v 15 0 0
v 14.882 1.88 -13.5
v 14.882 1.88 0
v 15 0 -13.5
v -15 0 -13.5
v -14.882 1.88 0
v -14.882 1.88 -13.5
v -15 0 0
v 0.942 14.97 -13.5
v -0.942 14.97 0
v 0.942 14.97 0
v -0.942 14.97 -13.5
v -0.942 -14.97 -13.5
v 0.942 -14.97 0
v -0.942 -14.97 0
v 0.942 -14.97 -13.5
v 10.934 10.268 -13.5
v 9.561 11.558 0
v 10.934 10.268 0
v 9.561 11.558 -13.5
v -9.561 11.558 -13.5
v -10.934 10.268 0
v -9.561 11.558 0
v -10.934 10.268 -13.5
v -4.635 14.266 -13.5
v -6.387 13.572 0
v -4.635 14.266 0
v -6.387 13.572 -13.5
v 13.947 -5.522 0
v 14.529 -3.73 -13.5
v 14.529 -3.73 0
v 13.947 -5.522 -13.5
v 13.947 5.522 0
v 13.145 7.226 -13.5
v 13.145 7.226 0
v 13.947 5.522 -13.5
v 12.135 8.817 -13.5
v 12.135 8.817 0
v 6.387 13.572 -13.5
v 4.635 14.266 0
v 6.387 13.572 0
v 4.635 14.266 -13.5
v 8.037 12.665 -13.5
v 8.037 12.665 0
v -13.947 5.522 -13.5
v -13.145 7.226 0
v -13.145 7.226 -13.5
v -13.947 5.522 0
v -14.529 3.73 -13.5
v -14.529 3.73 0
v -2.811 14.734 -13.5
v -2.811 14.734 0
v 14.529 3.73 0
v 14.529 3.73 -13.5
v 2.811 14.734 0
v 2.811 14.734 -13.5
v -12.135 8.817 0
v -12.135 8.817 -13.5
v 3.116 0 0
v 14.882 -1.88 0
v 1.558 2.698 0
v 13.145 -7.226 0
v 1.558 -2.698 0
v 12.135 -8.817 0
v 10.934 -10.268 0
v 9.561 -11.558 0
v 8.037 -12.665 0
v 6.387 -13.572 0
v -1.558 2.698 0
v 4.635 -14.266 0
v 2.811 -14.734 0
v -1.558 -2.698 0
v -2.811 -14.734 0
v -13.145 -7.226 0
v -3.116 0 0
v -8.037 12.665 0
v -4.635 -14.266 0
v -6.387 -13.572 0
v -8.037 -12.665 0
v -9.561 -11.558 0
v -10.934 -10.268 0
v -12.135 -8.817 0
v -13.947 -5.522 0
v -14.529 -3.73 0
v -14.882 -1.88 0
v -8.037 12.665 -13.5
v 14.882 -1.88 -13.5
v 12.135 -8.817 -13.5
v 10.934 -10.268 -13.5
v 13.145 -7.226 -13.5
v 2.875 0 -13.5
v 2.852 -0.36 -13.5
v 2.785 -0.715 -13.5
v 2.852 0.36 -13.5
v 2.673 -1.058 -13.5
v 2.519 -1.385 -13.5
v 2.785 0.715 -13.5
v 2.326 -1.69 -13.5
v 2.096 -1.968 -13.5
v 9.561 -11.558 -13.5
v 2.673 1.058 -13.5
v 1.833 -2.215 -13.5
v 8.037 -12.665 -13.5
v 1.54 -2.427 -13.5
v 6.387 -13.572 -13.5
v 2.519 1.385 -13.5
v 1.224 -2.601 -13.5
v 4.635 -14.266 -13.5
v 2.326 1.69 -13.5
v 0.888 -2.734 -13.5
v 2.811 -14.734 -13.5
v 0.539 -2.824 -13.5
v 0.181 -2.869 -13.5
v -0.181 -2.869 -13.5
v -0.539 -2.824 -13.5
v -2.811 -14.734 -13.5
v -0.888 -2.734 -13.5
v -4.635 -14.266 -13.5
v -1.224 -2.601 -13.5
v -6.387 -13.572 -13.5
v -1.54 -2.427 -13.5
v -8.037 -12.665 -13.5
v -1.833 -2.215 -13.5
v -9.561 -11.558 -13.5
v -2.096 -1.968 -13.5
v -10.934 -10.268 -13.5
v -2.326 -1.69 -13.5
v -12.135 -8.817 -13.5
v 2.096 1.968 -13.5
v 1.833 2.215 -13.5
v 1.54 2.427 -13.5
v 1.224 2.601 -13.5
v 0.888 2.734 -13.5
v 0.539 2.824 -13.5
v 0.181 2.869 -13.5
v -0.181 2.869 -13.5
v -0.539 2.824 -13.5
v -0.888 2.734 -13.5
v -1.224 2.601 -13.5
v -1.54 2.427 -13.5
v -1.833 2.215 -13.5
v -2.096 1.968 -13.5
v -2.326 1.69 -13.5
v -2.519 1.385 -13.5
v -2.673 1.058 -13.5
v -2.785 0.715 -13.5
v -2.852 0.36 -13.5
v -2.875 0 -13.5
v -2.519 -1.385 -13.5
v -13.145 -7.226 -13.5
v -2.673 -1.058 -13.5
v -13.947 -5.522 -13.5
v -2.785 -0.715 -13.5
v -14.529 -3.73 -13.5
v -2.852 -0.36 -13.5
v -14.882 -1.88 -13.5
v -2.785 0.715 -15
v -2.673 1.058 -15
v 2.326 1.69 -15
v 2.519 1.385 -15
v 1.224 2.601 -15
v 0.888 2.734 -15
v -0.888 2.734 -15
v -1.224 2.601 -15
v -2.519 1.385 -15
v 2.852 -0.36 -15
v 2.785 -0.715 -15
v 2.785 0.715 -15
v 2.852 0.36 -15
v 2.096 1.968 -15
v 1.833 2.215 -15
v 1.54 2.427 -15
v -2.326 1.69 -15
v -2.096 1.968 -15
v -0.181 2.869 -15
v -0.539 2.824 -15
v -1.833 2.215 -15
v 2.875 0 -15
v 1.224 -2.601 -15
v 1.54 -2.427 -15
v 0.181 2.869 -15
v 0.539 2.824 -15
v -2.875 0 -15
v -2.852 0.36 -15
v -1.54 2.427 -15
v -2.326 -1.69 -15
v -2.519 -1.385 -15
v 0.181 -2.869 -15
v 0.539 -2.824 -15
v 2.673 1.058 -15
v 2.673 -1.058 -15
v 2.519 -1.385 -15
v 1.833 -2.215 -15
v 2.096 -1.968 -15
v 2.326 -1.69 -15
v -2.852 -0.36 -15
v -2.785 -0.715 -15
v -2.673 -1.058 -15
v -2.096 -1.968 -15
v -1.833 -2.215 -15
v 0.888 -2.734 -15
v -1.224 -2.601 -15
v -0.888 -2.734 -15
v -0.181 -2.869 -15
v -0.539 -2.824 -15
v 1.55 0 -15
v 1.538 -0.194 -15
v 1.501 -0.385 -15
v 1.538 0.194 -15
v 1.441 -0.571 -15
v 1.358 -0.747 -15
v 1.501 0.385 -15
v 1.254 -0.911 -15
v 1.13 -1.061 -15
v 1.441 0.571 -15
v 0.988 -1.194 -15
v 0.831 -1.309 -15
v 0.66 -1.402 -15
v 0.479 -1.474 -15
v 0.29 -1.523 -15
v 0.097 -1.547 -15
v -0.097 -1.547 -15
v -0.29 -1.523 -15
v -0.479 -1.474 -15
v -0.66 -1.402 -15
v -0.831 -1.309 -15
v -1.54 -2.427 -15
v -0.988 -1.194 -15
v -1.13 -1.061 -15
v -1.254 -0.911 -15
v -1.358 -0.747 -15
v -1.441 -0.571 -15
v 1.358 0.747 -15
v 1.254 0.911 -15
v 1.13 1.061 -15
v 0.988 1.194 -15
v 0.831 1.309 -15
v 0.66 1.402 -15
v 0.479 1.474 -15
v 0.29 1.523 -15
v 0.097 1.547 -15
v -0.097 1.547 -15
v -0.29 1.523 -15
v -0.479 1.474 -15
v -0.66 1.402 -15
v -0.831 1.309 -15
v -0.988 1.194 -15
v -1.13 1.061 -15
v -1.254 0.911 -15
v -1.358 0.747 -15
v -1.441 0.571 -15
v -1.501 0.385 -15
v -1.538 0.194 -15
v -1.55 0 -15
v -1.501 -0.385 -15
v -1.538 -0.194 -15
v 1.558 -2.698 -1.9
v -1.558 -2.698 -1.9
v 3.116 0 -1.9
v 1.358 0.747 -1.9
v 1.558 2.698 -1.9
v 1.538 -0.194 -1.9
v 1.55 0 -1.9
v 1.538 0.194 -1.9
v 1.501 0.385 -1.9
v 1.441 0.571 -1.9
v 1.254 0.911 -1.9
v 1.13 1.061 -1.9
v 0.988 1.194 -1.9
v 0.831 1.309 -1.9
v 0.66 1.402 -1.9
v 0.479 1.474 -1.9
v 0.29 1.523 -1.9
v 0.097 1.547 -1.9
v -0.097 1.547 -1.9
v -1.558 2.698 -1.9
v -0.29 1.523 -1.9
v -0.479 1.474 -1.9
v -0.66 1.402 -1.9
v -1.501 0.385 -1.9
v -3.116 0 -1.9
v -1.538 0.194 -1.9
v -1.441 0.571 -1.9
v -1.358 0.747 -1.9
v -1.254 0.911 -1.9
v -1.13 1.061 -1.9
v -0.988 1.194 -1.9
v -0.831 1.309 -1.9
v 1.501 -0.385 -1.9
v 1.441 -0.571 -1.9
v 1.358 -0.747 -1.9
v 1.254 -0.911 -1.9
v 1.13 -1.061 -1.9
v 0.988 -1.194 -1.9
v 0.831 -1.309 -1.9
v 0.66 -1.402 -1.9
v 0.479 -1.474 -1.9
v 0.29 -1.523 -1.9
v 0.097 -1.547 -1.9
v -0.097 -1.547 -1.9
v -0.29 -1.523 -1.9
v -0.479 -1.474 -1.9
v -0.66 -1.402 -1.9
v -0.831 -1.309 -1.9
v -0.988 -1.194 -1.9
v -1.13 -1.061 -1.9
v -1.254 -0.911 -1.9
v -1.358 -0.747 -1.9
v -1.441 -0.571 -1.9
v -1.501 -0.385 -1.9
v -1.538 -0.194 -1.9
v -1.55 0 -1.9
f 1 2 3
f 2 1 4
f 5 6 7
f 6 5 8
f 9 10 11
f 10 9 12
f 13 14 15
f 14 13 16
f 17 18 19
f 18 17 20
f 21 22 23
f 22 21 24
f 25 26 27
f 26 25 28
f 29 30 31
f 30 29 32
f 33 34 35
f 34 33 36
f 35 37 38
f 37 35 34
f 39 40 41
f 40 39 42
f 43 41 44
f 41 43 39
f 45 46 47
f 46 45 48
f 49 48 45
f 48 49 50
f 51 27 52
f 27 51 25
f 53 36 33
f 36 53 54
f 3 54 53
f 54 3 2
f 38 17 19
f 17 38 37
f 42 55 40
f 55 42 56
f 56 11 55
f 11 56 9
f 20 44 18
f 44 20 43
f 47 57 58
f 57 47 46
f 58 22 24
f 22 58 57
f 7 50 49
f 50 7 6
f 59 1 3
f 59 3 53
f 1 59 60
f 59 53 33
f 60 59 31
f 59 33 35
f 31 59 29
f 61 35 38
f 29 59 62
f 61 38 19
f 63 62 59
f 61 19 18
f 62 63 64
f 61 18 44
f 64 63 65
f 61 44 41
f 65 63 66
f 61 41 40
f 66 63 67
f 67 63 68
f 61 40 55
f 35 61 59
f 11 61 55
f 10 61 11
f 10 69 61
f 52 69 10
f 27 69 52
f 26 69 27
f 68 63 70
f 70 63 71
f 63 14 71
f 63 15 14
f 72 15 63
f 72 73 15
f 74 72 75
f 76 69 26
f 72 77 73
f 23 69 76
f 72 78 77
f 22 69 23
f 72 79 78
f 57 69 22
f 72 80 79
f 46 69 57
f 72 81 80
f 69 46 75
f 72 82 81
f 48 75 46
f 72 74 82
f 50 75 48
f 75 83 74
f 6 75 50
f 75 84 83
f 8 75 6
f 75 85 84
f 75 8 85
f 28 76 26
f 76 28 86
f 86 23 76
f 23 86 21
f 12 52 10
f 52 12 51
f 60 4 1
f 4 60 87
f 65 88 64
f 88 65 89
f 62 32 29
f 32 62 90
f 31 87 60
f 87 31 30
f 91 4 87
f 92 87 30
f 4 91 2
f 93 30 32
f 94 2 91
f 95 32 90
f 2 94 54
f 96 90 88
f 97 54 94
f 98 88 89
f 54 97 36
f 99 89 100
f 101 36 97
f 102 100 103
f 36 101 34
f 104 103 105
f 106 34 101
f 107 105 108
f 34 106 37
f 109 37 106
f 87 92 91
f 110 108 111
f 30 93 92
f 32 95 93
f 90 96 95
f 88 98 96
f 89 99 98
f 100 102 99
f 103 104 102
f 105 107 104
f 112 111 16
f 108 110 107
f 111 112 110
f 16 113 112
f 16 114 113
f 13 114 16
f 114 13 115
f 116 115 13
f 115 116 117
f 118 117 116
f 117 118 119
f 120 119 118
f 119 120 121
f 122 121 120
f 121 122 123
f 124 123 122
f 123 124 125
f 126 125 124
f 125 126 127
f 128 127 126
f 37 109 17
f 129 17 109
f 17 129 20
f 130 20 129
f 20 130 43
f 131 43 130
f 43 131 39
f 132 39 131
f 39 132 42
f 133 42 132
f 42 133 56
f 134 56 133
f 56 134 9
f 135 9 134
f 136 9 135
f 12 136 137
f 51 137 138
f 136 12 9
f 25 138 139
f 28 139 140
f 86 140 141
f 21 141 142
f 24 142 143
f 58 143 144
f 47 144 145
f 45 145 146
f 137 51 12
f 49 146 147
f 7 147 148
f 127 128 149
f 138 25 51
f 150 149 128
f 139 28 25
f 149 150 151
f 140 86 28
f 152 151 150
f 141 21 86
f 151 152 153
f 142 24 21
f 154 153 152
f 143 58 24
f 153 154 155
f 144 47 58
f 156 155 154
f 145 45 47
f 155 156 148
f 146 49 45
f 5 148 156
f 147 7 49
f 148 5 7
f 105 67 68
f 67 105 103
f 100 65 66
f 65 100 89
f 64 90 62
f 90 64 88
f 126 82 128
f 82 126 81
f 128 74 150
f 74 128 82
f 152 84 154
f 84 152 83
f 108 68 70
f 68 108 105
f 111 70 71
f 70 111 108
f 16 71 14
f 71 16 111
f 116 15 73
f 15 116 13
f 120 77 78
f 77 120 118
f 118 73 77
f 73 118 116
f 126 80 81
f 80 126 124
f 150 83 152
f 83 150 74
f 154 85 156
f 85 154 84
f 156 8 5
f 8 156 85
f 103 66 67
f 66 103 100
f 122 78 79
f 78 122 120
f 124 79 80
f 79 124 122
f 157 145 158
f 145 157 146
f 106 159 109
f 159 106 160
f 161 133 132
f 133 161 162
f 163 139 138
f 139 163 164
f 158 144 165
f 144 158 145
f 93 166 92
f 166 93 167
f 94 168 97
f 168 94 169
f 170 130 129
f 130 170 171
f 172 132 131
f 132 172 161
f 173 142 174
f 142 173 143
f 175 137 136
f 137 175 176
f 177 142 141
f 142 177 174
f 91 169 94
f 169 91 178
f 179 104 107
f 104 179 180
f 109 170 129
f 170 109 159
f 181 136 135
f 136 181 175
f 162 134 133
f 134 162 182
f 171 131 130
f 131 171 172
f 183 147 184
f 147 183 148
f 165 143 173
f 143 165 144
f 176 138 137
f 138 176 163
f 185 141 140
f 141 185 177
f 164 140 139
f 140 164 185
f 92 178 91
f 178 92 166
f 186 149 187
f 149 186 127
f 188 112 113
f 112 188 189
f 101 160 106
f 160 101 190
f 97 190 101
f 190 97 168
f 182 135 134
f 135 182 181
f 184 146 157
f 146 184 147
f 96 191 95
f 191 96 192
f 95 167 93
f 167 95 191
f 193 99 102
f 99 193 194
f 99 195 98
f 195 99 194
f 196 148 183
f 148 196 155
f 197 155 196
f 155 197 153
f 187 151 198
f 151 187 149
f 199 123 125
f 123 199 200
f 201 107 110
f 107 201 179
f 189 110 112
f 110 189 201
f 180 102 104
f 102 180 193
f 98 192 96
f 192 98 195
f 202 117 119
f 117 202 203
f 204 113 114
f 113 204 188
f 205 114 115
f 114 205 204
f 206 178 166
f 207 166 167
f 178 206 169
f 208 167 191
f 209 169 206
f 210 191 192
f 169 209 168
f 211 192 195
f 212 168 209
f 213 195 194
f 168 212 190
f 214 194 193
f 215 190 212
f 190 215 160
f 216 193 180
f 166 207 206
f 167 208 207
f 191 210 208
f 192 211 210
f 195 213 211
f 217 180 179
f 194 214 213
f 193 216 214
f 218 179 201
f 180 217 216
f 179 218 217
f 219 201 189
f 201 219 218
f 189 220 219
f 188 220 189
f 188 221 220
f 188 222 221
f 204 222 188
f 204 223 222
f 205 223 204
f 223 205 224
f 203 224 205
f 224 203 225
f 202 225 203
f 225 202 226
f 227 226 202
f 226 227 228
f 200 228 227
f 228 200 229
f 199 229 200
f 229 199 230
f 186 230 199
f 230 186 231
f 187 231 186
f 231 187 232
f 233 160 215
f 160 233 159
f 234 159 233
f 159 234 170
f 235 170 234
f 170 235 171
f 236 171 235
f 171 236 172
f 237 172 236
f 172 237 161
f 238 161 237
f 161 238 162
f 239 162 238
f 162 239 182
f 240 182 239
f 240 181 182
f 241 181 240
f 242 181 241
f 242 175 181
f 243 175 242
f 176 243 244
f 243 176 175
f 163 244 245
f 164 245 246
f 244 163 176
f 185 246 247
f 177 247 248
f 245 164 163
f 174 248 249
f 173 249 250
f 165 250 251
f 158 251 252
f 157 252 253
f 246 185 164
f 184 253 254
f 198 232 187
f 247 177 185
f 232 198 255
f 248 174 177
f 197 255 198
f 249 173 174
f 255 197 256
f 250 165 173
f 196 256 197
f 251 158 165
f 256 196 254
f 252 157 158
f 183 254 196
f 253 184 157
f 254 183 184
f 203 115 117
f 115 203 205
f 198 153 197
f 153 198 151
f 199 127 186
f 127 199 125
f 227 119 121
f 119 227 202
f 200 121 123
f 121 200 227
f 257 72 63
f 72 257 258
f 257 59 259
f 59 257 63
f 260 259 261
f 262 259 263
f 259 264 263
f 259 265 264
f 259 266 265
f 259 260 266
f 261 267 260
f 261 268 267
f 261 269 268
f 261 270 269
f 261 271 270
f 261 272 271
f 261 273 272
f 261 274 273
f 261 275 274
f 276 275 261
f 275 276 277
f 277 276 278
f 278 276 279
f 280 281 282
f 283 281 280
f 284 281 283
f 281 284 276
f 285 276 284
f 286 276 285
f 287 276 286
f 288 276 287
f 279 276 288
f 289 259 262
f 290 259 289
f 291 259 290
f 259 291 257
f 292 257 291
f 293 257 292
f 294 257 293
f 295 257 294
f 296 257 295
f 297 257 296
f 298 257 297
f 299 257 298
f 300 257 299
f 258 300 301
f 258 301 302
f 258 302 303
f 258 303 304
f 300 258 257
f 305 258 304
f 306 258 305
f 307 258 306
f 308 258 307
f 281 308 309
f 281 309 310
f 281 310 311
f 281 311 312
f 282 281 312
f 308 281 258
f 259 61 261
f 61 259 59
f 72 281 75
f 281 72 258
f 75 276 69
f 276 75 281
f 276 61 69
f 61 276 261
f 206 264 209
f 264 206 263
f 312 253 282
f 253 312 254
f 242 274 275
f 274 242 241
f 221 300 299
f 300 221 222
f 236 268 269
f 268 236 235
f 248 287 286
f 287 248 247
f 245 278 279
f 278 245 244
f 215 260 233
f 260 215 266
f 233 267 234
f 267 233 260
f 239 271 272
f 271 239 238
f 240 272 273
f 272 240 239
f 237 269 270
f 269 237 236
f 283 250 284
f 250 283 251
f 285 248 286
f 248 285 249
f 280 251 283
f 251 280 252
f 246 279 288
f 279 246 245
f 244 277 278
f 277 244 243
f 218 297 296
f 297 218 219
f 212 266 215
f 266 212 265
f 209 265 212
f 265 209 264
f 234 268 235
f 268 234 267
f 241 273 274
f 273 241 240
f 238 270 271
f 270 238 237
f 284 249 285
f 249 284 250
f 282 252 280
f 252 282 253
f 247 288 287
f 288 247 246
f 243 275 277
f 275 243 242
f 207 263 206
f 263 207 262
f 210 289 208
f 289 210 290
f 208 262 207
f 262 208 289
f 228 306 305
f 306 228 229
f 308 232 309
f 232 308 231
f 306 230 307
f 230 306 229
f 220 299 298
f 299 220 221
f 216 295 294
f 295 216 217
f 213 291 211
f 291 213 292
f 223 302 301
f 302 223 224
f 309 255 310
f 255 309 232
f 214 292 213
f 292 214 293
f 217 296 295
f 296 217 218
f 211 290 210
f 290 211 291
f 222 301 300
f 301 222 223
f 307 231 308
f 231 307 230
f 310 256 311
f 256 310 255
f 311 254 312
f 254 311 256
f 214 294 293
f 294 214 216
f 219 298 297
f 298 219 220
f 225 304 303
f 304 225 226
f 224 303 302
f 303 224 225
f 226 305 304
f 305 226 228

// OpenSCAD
$fn = 50;

difference() {
	union() {
		translate(v = [0, 0, -13.5]) {
			cylinder(h = 13.5, r = 15.0);
		}
		#translate(v = [0, 0, -15.0]) {
			cylinder(h = 15, r = 2.875);
		}
	}
	union() {
		translate(v = [0, 0, 0]) {
			rotate(a = [0, 0, 0]) {
				difference() {
					union() {
						translate(v = [0, 0, -1.9]) {
							linear_extrude(height = 1.9) {
								polygon(points = [[3.1158, 0.0], [1.5579000000000005, 2.698361953111554], [-1.5578999999999994, 2.6983619531115544], [-3.1158, 3.815754496783323e-16], [-1.5579000000000014, -2.6983619531115535], [1.557899999999998, -2.6983619531115552]]);
							}
						}
					}
					union();
				}
			}
		}
		#translate(v = [0, 0, -100.0]) {
			cylinder(h = 200, r = 1.55);
		}
	}
}
